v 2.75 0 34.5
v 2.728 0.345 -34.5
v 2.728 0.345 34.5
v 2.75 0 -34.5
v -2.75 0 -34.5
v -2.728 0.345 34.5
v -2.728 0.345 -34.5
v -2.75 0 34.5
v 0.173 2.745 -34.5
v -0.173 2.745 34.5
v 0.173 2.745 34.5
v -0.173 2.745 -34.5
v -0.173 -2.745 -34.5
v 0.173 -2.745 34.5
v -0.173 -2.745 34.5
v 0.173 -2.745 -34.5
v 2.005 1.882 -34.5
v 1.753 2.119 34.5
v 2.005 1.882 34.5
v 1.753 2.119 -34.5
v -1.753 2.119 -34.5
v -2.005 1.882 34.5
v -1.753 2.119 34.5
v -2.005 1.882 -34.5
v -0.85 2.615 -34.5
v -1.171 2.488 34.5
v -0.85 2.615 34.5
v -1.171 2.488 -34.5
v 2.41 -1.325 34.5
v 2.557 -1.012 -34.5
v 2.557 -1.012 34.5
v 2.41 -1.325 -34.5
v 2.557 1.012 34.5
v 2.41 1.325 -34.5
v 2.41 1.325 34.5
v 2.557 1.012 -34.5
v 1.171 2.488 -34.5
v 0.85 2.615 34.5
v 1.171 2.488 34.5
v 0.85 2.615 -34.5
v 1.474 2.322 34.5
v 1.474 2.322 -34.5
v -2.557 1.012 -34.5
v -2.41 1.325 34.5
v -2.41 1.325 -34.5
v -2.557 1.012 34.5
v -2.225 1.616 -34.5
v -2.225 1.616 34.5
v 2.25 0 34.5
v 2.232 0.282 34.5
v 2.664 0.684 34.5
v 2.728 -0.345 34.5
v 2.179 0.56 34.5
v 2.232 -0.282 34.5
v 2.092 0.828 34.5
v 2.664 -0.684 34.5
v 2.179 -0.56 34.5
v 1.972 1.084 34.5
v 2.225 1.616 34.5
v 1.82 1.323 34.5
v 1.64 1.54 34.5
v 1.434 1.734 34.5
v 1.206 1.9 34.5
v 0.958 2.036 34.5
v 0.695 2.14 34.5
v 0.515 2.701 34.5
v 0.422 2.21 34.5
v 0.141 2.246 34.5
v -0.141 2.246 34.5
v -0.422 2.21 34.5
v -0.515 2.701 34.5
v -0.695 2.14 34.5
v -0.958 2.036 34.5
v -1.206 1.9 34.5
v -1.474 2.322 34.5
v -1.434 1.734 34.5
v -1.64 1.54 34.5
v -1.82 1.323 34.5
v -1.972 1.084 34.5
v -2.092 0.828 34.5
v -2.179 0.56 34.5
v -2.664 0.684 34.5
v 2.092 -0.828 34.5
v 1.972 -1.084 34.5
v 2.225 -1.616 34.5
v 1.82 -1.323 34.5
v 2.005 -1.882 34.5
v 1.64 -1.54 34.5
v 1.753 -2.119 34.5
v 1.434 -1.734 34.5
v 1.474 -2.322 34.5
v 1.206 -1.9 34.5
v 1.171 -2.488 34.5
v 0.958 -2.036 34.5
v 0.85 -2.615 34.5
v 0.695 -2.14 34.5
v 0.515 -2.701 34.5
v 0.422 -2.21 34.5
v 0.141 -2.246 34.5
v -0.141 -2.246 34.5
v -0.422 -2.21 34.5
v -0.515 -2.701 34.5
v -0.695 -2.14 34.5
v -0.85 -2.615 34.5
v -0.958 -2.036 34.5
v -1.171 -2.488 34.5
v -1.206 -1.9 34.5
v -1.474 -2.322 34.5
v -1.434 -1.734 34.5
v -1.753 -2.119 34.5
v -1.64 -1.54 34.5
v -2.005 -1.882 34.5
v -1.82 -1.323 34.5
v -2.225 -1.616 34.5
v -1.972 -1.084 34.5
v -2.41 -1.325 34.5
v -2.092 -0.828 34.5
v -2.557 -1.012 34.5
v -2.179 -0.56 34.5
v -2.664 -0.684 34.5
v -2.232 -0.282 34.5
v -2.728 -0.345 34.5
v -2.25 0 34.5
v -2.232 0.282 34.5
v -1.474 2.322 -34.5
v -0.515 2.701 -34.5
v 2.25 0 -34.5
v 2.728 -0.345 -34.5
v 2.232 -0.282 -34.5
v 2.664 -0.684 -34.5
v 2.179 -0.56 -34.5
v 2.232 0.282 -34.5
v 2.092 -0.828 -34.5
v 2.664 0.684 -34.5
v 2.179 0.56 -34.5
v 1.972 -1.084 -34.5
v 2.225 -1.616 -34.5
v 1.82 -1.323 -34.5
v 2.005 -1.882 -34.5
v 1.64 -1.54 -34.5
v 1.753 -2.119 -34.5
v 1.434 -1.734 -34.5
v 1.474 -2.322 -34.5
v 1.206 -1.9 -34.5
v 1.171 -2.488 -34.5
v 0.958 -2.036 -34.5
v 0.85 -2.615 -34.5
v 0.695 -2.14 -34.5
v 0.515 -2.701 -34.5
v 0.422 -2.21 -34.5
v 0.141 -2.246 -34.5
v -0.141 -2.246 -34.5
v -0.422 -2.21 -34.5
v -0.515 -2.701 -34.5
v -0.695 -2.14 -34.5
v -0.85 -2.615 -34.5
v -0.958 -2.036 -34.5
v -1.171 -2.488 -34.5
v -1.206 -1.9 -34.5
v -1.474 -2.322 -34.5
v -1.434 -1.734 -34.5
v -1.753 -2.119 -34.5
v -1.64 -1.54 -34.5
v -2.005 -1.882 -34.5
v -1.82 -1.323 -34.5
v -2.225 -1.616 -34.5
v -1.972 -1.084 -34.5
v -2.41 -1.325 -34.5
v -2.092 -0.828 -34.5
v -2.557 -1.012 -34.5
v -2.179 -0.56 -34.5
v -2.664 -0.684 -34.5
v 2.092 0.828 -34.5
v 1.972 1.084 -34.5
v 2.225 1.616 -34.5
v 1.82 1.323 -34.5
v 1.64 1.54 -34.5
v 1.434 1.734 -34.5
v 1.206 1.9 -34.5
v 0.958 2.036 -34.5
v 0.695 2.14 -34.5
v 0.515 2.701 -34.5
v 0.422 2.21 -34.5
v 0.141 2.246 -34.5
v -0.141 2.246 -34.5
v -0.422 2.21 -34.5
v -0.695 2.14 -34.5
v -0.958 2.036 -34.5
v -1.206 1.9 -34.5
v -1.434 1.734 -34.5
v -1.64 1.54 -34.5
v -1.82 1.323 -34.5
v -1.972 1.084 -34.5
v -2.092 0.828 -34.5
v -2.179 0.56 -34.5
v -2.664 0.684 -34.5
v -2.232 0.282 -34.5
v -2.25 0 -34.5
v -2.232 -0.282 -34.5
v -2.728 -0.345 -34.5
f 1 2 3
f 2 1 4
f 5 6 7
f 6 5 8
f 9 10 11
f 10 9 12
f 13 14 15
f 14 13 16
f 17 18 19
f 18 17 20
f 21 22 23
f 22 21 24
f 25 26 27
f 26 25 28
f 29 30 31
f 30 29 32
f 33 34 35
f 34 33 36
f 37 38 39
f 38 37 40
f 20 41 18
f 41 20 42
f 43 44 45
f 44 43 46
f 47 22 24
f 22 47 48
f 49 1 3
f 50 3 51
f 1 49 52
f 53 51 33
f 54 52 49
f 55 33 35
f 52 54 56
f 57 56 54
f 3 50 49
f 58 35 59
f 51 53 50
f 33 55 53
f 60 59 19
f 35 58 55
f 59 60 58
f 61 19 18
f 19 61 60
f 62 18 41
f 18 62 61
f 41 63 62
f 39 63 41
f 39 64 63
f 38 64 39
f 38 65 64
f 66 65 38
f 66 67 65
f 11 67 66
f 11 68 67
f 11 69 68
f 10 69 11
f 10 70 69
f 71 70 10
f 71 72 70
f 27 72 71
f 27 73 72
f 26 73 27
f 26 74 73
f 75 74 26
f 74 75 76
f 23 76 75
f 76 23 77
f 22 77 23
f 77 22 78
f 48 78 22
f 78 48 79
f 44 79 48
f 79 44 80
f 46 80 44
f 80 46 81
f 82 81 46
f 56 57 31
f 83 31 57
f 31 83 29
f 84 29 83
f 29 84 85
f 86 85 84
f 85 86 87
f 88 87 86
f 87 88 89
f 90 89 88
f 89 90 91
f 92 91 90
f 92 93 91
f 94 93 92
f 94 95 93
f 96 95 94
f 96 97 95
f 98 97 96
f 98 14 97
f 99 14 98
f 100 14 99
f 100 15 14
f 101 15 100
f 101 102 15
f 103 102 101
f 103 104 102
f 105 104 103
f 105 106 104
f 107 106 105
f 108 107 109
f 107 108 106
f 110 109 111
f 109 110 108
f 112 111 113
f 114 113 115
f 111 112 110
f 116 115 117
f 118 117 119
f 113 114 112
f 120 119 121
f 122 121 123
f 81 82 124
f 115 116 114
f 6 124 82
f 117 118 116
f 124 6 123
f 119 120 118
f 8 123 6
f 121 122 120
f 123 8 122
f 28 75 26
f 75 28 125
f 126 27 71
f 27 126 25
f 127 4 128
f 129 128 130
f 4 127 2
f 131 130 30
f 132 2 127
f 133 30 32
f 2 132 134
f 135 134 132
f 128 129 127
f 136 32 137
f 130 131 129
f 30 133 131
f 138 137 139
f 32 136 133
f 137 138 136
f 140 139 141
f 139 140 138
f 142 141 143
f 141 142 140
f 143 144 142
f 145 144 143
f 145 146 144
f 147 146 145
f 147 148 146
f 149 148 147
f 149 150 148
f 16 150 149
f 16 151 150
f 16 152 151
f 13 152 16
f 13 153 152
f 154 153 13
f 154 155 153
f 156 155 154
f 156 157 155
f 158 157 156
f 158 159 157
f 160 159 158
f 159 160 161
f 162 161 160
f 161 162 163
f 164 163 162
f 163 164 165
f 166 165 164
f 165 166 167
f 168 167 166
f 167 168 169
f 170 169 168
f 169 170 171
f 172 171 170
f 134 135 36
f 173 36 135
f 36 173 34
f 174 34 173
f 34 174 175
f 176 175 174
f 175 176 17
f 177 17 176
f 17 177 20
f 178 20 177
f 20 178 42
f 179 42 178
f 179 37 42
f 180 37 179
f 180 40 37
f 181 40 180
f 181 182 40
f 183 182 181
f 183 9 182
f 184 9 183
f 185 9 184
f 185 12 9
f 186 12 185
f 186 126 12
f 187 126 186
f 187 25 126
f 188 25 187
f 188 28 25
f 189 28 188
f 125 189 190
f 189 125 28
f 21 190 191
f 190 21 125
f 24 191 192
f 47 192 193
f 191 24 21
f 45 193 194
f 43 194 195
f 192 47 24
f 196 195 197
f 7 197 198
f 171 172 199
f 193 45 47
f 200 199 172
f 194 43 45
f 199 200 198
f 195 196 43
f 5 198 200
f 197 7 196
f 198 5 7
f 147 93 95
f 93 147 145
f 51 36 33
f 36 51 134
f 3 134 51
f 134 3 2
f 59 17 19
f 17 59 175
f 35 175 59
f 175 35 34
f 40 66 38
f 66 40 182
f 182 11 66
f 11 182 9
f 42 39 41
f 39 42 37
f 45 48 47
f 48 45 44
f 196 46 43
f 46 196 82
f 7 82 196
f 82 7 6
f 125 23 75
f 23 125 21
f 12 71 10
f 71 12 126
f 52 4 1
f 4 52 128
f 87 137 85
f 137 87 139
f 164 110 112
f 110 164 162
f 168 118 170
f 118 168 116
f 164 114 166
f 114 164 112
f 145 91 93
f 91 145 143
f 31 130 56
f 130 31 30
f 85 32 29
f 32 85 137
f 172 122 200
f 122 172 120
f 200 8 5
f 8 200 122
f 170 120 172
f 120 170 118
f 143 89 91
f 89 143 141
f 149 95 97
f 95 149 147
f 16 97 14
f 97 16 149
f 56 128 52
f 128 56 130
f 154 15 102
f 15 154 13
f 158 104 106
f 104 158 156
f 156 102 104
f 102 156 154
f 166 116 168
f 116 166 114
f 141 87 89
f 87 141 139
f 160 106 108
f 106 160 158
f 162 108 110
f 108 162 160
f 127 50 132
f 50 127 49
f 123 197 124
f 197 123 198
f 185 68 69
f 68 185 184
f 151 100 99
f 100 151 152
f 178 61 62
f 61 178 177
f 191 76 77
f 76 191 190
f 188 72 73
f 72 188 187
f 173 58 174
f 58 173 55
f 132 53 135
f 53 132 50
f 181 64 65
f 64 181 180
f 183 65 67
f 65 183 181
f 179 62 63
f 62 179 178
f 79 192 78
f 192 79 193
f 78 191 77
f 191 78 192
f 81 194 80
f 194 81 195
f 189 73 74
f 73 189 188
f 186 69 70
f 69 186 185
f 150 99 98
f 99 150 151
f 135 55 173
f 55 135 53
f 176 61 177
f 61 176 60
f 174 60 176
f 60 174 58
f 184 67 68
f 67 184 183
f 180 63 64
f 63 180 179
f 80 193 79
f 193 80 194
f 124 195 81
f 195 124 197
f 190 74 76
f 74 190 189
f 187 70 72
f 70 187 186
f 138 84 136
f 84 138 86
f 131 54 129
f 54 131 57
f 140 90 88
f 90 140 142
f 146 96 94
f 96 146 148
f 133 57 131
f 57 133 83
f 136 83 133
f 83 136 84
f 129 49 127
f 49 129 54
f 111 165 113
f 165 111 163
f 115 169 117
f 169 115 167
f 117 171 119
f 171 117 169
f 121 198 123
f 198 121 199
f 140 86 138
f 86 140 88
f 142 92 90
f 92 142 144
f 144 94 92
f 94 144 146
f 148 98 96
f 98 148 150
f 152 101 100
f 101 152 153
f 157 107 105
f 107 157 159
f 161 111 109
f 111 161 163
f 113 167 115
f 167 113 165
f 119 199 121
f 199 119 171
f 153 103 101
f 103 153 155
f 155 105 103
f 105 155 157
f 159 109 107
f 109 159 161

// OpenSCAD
$fn = 50;


difference() {
	union() {
		translate(v = [0, 0, -34.5000000000]) {
			cylinder(h = 69, r = 2.7500000000);
		}
	}
	union() {
		translate(v = [0, 0, -100.0000000000]) {
			cylinder(h = 200, r = 2.2500000000);
		}
	}
}
